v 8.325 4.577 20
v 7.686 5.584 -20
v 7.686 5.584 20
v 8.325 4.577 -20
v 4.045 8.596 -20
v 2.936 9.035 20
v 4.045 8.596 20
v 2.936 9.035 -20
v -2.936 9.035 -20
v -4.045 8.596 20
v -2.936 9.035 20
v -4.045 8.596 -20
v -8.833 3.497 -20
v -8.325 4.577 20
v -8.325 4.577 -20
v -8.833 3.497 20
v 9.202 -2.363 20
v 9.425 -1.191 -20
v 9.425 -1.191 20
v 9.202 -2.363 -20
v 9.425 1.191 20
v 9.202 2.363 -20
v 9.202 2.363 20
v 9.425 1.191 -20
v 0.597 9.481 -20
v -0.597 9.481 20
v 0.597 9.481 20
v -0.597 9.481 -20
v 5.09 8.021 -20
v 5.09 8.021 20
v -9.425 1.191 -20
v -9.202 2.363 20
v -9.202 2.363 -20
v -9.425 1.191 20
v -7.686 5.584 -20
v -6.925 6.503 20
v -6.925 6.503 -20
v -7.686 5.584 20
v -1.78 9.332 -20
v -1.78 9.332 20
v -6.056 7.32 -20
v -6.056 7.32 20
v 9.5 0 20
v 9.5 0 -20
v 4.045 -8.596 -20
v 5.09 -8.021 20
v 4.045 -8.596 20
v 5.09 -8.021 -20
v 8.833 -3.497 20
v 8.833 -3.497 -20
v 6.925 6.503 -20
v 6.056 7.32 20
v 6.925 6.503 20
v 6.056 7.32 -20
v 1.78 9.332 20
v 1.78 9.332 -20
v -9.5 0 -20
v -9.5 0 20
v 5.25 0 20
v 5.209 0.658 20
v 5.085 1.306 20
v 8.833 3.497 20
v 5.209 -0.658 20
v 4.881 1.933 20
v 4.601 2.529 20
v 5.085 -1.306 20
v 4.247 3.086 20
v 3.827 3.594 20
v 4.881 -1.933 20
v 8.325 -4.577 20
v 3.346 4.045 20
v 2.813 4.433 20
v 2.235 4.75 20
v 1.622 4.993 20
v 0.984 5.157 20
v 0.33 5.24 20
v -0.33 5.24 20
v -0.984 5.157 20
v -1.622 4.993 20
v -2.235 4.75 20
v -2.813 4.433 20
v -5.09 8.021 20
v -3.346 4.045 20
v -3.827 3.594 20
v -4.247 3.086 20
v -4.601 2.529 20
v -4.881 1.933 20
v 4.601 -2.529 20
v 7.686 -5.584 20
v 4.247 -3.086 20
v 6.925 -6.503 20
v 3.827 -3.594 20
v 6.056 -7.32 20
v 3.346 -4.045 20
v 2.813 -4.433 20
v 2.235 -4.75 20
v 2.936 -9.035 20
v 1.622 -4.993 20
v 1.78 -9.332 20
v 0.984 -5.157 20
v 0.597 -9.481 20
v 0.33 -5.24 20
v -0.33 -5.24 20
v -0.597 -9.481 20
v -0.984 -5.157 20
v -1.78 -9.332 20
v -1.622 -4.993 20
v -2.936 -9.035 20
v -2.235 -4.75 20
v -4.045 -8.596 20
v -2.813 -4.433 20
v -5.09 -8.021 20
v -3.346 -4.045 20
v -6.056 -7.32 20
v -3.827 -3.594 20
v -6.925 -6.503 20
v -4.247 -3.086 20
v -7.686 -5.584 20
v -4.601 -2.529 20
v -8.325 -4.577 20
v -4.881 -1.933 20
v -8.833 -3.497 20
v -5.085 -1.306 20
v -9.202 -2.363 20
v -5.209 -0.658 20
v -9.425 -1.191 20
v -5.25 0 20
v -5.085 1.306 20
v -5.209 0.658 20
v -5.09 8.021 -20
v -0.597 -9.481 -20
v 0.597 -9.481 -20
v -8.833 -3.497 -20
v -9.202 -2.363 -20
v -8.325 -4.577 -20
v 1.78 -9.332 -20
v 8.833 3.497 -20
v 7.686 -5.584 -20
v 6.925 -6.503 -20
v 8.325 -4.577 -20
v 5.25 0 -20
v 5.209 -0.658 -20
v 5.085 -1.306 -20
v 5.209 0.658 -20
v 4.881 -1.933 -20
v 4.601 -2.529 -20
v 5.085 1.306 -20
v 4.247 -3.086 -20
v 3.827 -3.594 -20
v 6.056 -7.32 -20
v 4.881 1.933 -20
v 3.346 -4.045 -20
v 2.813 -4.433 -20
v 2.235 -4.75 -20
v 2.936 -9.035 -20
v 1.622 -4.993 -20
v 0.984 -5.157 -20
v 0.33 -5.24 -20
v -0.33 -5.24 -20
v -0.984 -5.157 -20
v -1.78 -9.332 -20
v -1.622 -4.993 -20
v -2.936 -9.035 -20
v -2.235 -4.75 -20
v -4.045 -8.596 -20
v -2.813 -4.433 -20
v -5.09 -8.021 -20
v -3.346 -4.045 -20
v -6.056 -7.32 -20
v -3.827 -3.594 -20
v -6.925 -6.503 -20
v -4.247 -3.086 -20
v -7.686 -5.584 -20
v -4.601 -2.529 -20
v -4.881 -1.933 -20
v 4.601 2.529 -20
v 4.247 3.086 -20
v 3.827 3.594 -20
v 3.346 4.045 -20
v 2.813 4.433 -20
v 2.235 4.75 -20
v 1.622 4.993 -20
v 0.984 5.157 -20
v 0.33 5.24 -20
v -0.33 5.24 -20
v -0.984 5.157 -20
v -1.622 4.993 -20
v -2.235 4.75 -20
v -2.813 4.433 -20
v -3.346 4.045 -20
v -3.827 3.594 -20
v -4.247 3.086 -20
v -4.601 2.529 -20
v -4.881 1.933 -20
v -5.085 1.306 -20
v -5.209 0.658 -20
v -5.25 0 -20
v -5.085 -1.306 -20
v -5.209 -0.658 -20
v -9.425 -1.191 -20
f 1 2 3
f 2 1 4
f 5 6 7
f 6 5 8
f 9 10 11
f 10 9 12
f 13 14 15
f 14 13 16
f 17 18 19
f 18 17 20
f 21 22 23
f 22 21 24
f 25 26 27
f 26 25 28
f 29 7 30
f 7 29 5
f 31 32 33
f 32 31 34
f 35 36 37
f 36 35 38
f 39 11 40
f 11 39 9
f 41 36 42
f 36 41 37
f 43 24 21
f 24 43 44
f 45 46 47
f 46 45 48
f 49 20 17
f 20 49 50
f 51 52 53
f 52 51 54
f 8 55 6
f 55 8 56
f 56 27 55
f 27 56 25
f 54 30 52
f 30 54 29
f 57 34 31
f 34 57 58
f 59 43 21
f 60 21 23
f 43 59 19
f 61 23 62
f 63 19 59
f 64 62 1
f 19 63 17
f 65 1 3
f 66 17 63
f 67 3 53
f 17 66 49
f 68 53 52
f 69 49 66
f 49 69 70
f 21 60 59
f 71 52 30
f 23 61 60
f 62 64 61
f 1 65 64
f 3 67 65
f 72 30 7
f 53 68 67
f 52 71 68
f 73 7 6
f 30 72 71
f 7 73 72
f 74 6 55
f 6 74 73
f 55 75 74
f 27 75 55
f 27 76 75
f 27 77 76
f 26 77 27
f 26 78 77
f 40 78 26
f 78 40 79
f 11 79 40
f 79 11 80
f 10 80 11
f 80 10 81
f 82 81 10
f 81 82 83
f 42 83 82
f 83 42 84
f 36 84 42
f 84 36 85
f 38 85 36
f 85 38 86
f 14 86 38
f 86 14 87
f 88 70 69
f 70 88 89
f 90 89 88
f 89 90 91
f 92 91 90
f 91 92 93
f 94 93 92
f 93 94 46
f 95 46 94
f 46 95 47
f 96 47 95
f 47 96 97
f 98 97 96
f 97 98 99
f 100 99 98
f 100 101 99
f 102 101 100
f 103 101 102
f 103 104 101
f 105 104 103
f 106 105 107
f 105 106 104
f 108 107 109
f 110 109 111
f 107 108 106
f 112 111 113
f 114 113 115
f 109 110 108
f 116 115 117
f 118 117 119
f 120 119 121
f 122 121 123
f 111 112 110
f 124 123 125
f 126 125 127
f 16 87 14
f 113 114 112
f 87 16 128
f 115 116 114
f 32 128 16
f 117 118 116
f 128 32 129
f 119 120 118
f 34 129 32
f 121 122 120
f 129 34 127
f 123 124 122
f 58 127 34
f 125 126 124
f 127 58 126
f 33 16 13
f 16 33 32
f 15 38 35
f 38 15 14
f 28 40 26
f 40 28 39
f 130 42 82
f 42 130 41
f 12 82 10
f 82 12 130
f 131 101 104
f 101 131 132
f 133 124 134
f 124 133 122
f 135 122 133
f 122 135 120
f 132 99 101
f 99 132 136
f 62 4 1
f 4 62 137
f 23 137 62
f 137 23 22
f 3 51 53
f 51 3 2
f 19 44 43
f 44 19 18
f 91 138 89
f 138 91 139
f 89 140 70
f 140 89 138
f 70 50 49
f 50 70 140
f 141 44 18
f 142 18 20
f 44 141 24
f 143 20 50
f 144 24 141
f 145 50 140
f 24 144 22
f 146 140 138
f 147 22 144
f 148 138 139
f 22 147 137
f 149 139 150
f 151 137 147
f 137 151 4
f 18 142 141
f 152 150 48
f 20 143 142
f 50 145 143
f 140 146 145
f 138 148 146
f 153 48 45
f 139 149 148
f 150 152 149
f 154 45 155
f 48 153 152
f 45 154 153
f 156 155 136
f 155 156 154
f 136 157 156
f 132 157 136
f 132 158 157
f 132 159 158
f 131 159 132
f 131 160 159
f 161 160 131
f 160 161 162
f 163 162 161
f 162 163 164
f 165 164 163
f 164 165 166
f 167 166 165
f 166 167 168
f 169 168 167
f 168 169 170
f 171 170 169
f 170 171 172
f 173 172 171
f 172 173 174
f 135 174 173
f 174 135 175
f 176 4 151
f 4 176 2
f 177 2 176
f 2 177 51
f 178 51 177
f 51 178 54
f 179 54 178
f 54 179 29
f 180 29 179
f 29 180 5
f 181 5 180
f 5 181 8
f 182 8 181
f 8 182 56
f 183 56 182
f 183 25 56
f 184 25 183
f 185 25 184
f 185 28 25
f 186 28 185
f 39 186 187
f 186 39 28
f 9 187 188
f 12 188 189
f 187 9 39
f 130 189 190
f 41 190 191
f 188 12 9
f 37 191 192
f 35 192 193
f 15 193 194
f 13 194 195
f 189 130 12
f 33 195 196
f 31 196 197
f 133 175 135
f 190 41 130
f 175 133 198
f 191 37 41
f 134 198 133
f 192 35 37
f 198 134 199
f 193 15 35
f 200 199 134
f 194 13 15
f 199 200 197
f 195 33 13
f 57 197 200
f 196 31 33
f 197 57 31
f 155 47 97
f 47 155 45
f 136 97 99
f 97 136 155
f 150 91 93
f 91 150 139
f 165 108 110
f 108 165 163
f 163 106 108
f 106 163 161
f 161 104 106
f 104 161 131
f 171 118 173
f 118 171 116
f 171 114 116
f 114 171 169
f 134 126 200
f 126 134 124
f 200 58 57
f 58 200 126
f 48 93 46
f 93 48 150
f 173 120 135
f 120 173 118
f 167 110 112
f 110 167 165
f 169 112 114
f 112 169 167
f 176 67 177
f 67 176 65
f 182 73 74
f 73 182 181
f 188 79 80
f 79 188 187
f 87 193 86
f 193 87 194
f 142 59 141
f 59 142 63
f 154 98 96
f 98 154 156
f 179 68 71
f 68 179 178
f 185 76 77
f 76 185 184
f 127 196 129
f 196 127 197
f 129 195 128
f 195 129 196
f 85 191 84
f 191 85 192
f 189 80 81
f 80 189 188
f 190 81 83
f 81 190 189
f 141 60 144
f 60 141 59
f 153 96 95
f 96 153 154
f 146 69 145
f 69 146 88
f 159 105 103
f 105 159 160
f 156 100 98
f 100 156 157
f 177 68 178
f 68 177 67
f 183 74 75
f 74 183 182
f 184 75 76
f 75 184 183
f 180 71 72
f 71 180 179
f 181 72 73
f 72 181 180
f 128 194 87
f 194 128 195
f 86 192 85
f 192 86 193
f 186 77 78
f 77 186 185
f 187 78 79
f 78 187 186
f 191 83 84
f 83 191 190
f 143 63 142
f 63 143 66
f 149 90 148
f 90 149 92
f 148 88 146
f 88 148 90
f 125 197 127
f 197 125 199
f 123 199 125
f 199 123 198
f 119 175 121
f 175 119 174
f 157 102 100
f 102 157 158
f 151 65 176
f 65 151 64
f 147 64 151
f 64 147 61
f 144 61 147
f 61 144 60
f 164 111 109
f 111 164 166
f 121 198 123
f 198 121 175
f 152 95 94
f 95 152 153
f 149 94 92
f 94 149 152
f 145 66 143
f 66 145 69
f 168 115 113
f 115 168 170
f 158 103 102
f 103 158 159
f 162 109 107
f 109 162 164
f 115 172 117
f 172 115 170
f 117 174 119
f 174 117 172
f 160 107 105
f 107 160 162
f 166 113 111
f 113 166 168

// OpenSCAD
$fn = 50;


difference() {
	union() {
		translate(v = [0, 0, -20.0000000000]) {
			cylinder(h = 40, r = 9.5000000000);
		}
	}
	union() {
		translate(v = [0, 0, -100.0000000000]) {
			cylinder(h = 200, r = 5.2500000000);
		}
	}
}
